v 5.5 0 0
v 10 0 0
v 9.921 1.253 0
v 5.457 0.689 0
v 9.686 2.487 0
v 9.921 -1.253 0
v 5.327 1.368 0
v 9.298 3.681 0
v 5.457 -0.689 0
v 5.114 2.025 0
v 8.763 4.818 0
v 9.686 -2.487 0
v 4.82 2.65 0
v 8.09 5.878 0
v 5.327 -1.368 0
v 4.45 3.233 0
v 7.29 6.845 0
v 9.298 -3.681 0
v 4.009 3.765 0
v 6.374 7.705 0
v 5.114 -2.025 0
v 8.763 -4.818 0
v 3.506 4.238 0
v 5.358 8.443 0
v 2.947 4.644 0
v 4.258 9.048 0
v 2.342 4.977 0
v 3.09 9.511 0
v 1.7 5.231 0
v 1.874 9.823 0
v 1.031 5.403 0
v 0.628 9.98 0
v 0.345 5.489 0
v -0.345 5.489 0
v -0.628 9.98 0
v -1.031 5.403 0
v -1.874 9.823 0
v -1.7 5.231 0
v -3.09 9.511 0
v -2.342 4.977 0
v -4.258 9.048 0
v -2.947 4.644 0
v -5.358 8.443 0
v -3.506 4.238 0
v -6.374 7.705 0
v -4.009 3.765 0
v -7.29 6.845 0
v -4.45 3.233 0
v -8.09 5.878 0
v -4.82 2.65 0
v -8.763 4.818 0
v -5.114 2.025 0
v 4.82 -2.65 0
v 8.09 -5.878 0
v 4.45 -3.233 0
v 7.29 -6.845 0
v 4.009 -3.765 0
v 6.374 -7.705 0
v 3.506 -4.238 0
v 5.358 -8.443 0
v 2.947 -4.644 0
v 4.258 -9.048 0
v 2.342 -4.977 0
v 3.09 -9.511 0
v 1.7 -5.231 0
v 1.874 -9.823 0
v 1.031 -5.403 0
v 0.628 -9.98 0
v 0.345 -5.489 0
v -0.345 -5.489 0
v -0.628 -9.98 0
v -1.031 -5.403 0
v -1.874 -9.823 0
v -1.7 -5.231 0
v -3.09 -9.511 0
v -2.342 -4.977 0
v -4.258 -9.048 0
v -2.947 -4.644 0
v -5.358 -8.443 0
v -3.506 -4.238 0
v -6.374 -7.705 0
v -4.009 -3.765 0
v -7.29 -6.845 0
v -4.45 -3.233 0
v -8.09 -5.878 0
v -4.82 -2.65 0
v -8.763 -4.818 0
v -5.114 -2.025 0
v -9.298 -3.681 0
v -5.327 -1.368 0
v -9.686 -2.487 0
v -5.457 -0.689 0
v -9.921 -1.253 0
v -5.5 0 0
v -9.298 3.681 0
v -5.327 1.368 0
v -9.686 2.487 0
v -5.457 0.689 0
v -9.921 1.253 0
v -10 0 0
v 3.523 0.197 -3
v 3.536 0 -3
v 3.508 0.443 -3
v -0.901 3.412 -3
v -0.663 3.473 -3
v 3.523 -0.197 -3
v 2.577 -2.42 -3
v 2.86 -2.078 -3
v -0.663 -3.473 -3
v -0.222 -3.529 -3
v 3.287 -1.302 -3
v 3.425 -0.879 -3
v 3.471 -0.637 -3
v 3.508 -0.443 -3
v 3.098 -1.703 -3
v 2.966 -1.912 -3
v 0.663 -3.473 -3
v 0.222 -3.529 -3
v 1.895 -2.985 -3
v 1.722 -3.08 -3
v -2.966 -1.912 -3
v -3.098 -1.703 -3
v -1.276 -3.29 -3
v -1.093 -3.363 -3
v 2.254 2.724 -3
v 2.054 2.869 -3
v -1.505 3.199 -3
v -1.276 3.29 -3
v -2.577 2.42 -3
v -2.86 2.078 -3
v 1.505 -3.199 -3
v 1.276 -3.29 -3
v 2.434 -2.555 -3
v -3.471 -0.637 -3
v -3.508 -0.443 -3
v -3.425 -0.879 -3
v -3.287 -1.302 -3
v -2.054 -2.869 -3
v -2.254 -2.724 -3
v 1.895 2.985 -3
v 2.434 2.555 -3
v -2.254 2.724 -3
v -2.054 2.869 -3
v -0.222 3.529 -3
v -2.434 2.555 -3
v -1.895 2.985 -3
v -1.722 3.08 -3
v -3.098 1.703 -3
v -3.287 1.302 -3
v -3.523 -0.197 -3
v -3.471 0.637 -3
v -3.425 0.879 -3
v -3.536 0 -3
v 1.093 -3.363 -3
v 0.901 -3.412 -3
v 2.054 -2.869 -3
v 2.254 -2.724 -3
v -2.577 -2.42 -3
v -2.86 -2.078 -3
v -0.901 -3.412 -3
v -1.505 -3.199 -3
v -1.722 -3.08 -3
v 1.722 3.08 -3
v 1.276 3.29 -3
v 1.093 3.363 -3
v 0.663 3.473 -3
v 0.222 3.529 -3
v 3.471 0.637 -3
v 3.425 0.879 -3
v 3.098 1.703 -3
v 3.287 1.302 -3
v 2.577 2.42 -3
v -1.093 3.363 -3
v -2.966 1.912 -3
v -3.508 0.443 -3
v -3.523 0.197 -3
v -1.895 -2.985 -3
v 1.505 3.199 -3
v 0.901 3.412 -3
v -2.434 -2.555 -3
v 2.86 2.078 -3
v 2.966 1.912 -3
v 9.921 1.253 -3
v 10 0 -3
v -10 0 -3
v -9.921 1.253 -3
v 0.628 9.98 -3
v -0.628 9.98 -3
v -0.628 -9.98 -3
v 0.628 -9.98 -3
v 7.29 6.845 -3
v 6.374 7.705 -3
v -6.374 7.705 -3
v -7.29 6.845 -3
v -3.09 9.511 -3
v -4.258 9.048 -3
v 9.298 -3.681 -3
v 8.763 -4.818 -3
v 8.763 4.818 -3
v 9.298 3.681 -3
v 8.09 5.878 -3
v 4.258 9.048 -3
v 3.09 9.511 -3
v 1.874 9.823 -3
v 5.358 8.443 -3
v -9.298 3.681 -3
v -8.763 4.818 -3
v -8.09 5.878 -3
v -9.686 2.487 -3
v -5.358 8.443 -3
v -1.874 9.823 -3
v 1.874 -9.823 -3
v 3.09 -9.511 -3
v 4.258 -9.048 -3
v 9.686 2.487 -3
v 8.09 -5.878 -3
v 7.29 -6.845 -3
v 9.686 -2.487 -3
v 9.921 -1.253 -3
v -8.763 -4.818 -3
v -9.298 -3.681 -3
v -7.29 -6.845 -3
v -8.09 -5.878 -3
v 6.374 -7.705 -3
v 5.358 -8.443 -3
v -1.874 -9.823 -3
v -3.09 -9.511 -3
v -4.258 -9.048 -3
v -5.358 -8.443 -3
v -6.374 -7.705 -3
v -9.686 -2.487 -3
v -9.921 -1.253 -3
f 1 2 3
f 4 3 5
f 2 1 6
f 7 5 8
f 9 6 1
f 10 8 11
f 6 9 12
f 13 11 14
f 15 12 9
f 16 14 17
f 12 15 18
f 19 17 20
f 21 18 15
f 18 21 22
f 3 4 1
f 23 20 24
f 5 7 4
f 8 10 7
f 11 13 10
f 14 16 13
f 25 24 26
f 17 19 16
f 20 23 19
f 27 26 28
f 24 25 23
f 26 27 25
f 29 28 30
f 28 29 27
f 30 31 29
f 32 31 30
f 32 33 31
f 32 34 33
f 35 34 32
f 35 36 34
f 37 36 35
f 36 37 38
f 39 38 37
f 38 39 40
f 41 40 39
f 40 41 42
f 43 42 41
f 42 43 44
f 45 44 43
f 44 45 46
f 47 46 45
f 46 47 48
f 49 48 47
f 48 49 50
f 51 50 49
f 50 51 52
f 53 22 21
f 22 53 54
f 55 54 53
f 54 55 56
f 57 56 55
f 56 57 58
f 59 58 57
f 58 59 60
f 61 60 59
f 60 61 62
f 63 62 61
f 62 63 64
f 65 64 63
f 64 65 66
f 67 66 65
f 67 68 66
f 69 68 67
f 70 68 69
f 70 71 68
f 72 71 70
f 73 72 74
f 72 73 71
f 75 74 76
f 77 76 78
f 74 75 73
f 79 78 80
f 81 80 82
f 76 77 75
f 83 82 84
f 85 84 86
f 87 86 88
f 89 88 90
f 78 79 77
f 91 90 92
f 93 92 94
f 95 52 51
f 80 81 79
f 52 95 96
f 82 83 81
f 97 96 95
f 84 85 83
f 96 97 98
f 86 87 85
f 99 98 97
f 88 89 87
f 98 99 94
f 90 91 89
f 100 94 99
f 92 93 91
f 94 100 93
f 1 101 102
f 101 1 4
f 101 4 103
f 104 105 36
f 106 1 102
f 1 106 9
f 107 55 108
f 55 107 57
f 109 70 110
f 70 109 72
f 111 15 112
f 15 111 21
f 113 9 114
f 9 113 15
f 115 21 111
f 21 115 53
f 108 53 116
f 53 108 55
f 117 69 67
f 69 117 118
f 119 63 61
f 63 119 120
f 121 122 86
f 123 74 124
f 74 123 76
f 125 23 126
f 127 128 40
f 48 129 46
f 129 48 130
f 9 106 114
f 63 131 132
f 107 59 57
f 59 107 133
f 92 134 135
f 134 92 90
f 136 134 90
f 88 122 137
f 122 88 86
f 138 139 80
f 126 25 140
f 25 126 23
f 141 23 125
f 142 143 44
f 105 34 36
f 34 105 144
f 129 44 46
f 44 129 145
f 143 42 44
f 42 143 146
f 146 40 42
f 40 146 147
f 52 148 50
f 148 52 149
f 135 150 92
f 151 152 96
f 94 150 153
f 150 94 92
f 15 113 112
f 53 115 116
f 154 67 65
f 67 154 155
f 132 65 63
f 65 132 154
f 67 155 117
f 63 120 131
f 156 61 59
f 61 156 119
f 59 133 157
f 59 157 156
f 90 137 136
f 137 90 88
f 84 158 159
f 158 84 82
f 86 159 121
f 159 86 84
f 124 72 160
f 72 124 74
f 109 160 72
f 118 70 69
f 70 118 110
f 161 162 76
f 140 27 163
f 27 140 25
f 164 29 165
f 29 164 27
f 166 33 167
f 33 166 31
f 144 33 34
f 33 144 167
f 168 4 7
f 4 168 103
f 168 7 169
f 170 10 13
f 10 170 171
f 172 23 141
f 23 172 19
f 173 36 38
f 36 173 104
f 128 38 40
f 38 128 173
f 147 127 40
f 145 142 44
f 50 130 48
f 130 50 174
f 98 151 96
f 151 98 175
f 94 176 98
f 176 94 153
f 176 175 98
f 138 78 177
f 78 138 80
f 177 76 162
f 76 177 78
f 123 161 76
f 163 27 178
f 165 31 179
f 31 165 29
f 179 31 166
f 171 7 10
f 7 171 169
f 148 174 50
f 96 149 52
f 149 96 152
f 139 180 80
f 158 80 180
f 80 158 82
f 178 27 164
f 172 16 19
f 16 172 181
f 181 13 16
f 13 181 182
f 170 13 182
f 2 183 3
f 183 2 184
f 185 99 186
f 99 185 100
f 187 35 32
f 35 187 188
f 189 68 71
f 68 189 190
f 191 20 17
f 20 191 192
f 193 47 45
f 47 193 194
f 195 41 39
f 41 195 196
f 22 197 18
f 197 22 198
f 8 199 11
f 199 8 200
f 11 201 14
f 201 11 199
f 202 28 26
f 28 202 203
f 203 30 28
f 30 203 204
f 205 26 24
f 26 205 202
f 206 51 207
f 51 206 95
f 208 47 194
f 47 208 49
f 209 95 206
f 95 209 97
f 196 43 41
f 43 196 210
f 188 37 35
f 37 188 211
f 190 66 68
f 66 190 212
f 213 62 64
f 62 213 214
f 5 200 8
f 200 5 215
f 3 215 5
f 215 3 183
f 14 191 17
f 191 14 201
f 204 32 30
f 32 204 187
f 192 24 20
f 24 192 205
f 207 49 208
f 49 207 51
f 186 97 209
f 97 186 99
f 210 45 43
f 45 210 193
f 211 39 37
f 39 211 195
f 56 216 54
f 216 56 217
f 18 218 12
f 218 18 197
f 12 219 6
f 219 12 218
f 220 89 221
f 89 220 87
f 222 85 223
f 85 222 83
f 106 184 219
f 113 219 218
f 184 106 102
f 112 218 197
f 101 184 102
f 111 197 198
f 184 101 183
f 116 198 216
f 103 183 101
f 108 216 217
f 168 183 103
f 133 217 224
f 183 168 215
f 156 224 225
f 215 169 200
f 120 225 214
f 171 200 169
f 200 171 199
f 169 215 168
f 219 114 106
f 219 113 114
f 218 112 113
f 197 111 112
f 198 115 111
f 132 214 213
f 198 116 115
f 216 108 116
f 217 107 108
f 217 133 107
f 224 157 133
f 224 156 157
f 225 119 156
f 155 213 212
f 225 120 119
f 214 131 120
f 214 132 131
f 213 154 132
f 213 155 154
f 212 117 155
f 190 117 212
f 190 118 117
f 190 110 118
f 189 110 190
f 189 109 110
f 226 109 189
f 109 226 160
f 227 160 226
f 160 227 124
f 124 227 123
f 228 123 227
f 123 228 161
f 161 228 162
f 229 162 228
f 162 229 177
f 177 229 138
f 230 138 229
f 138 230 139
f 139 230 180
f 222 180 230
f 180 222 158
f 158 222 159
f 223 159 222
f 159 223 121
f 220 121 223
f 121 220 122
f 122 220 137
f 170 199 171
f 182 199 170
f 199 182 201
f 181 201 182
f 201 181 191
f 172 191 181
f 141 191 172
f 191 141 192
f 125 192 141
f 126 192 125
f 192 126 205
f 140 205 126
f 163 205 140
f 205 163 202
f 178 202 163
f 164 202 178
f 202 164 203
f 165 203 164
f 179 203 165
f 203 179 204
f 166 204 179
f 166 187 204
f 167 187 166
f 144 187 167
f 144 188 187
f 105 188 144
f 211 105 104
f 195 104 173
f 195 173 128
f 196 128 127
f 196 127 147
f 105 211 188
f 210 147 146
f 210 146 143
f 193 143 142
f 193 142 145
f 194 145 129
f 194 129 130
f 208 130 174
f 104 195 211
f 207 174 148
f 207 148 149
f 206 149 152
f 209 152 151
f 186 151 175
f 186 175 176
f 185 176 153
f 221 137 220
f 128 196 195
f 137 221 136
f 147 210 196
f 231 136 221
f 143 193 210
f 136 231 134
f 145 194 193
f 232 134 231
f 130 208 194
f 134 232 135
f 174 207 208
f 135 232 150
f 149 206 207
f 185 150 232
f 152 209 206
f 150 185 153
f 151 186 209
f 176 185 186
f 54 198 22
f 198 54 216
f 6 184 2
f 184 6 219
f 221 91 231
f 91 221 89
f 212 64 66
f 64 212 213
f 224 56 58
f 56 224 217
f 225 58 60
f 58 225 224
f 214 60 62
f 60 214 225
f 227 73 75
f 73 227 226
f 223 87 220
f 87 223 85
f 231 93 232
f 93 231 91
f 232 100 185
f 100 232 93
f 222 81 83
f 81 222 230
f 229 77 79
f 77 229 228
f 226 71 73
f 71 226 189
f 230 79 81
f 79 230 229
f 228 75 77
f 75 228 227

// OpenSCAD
$fn = 50;


difference() {
	union() {
		translate(v = [0, 0, -3.0000000000]) {
			cylinder(h = 3, r = 10.0000000000);
		}
		cylinder(h = 0, r = 13.0000000000);
	}
	union() {
		translate(v = [0, 0, 0]) {
			rotate(a = [0, 0, 0]) {
				difference() {
					union() {
						#translate(v = [0, 0, -3.0000000000]) {
							cylinder(h = 3, r = 2.2500000000);
						}
						#translate(v = [0, 0, -4.2000000000]) {
							cylinder(h = 4.2000000000, r1 = 2.7500000000, r2 = 5.5000000000);
						}
						#translate(v = [0, 0, -3.0000000000]) {
							cylinder(h = 3, r = 2.7500000000);
						}
						#translate(v = [0, 0, -3.0000000000]) {
							cylinder(h = 3, r = 2.2500000000);
						}
					}
					union();
				}
			}
		}
	}
}
